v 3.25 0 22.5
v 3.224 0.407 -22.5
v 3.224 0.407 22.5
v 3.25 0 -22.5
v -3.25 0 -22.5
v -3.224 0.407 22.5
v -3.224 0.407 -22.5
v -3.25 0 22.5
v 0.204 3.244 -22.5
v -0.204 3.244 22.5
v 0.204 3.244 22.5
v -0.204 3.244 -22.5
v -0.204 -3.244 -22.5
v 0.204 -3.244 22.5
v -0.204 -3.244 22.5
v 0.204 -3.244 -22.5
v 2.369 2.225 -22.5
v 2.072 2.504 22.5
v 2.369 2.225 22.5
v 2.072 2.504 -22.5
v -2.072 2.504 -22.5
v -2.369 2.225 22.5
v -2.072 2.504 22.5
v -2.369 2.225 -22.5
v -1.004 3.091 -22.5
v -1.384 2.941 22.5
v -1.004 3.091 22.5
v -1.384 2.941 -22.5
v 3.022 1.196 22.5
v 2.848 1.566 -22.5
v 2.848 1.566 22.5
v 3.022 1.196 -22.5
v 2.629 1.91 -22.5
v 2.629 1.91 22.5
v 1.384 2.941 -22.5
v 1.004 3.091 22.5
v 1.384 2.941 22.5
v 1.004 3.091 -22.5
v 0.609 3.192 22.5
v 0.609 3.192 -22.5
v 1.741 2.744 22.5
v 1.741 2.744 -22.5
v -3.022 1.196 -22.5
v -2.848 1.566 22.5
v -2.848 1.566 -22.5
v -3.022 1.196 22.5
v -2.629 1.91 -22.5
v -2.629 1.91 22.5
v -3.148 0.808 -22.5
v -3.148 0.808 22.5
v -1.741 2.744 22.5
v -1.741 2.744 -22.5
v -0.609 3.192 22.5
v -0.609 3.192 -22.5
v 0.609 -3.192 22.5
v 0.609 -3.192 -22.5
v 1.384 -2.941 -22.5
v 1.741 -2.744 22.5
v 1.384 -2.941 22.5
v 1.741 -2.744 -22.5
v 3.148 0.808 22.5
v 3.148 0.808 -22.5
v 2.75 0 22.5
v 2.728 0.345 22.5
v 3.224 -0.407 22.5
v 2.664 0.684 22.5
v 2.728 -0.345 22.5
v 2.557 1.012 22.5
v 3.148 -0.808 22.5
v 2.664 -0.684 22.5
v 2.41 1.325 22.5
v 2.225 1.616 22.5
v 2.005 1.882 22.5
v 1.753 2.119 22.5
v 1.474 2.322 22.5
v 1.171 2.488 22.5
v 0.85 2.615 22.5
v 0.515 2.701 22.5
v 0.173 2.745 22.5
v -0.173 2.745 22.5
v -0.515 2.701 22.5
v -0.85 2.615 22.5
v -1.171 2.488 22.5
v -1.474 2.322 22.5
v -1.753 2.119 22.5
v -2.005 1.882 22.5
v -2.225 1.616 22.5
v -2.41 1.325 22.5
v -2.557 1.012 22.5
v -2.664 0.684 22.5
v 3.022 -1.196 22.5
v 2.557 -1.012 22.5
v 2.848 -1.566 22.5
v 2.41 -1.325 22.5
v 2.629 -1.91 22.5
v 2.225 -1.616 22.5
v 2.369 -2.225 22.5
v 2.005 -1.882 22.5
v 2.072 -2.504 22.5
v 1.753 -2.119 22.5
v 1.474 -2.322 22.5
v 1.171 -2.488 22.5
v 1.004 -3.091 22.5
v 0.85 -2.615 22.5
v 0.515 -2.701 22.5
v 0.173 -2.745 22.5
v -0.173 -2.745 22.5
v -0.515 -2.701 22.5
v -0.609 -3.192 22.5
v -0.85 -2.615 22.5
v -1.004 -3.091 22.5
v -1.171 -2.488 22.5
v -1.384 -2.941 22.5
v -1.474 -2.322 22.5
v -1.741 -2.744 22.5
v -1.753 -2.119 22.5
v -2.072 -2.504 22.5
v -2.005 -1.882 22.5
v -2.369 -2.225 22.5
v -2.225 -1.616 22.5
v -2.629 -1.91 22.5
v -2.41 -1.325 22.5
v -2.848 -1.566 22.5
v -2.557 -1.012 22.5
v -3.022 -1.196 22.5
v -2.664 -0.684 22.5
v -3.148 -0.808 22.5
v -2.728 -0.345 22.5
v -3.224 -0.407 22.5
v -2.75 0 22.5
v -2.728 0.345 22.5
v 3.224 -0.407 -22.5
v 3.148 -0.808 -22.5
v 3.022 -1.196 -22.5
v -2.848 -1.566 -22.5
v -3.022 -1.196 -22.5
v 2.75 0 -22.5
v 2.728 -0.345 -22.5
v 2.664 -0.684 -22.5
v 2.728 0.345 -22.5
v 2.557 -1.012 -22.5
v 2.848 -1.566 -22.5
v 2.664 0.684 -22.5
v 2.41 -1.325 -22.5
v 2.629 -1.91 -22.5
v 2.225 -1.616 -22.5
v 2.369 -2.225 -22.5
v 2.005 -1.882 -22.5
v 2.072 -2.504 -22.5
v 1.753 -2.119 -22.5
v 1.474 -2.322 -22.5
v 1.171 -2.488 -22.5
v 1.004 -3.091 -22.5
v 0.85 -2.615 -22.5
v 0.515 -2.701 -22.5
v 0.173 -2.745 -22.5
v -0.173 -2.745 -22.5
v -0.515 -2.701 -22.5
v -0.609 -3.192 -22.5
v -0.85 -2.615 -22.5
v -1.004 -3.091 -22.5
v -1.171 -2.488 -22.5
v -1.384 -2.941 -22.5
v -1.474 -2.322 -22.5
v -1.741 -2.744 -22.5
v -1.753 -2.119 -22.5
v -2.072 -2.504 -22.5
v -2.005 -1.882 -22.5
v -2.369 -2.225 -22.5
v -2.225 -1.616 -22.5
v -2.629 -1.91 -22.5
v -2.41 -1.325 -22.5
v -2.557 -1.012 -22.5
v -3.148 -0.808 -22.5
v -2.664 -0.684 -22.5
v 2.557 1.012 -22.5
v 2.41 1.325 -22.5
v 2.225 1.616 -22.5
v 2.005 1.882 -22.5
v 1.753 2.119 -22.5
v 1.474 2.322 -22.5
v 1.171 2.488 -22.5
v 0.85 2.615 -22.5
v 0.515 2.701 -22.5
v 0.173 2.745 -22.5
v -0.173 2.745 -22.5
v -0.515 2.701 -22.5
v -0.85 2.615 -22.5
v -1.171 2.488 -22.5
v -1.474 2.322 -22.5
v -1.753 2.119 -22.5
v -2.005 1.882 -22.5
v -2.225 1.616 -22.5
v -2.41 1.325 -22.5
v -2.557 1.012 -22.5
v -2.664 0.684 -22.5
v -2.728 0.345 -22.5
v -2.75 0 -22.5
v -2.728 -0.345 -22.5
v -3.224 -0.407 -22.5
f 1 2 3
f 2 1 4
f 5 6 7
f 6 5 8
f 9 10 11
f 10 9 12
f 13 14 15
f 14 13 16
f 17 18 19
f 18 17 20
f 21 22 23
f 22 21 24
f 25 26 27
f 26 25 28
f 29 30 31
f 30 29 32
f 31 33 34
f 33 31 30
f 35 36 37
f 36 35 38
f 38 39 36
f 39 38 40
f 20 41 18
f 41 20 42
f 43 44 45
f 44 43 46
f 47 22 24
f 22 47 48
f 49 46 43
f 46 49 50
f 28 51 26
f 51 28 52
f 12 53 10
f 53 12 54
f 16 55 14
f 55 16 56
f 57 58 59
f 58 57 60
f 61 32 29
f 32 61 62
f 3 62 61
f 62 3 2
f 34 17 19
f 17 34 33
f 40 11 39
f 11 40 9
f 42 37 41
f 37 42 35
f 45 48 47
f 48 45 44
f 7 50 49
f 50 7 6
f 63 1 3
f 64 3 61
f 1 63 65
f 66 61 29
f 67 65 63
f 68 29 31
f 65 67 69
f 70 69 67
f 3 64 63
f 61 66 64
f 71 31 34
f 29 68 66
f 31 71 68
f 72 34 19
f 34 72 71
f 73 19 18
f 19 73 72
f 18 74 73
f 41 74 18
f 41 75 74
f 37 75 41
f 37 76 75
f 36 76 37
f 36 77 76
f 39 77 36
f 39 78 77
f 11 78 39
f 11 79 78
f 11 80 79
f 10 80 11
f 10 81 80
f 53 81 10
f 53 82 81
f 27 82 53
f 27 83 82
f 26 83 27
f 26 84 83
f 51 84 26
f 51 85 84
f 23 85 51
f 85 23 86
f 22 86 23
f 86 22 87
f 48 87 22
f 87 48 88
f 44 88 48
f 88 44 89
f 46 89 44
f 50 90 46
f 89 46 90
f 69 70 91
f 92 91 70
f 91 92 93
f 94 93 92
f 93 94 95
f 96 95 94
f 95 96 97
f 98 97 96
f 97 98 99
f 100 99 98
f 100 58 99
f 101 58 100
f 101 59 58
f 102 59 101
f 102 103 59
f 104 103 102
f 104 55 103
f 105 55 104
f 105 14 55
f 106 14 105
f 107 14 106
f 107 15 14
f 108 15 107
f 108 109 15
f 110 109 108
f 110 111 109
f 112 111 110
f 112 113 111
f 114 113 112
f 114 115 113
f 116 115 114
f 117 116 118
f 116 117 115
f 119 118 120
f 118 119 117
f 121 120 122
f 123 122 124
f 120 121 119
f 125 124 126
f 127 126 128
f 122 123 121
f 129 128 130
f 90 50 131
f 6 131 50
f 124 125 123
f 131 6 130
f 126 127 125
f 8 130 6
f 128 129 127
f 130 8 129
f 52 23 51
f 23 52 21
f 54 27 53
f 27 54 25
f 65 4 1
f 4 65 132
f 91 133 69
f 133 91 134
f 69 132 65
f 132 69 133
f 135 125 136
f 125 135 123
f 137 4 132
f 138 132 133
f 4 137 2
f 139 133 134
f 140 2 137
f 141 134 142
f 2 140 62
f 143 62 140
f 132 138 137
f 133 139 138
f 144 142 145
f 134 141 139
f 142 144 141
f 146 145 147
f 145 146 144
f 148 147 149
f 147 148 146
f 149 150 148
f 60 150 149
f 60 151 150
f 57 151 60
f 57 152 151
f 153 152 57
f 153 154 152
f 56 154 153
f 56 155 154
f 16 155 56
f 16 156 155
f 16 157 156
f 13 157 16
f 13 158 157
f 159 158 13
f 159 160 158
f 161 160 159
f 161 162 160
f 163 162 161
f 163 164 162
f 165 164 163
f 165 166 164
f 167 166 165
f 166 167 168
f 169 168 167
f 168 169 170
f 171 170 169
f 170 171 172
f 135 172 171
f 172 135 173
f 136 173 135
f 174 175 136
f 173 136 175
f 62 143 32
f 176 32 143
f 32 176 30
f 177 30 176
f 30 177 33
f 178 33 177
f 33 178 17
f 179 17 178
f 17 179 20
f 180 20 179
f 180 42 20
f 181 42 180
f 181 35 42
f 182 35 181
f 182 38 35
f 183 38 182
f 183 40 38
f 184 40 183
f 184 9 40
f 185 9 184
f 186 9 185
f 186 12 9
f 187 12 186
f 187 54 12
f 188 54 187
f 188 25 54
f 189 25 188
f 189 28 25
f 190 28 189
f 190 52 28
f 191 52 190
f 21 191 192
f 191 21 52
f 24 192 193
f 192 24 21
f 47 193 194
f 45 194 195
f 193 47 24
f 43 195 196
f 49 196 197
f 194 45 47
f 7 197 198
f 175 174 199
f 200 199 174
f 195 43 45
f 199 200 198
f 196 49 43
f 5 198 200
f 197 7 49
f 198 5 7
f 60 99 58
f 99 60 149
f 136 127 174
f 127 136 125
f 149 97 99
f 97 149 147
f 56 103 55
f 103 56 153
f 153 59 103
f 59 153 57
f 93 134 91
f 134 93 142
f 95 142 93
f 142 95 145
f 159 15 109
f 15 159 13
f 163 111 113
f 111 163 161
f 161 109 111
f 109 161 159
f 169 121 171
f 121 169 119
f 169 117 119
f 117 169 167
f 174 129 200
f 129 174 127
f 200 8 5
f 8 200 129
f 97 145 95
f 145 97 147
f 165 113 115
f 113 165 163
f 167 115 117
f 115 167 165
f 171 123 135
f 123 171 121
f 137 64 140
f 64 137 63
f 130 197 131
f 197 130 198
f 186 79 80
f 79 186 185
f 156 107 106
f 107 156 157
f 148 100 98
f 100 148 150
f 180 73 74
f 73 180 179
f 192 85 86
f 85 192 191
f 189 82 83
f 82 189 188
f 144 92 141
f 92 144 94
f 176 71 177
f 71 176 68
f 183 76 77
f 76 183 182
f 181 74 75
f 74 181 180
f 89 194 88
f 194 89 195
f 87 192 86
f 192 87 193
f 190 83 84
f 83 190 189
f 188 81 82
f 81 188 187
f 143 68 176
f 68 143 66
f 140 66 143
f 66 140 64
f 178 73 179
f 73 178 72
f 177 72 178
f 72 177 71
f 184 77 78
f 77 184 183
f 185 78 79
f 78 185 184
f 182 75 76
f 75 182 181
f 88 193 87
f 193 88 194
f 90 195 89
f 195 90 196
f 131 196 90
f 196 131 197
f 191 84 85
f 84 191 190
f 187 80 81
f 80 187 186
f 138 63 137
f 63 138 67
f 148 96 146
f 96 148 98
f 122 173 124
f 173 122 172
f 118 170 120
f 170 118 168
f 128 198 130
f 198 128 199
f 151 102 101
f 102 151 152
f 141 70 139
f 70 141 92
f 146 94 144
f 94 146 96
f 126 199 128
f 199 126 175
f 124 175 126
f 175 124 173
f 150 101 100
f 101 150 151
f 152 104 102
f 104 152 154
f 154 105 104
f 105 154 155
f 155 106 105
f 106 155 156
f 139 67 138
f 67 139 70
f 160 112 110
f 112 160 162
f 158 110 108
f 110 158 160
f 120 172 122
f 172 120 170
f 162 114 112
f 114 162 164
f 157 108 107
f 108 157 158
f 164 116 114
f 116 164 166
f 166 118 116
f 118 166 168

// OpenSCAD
$fn = 50;


difference() {
	union() {
		translate(v = [0, 0, -22.5000000000]) {
			cylinder(h = 45, r = 3.2500000000);
		}
	}
	union() {
		translate(v = [0, 0, -100.0000000000]) {
			cylinder(h = 200, r = 2.7500000000);
		}
	}
}
